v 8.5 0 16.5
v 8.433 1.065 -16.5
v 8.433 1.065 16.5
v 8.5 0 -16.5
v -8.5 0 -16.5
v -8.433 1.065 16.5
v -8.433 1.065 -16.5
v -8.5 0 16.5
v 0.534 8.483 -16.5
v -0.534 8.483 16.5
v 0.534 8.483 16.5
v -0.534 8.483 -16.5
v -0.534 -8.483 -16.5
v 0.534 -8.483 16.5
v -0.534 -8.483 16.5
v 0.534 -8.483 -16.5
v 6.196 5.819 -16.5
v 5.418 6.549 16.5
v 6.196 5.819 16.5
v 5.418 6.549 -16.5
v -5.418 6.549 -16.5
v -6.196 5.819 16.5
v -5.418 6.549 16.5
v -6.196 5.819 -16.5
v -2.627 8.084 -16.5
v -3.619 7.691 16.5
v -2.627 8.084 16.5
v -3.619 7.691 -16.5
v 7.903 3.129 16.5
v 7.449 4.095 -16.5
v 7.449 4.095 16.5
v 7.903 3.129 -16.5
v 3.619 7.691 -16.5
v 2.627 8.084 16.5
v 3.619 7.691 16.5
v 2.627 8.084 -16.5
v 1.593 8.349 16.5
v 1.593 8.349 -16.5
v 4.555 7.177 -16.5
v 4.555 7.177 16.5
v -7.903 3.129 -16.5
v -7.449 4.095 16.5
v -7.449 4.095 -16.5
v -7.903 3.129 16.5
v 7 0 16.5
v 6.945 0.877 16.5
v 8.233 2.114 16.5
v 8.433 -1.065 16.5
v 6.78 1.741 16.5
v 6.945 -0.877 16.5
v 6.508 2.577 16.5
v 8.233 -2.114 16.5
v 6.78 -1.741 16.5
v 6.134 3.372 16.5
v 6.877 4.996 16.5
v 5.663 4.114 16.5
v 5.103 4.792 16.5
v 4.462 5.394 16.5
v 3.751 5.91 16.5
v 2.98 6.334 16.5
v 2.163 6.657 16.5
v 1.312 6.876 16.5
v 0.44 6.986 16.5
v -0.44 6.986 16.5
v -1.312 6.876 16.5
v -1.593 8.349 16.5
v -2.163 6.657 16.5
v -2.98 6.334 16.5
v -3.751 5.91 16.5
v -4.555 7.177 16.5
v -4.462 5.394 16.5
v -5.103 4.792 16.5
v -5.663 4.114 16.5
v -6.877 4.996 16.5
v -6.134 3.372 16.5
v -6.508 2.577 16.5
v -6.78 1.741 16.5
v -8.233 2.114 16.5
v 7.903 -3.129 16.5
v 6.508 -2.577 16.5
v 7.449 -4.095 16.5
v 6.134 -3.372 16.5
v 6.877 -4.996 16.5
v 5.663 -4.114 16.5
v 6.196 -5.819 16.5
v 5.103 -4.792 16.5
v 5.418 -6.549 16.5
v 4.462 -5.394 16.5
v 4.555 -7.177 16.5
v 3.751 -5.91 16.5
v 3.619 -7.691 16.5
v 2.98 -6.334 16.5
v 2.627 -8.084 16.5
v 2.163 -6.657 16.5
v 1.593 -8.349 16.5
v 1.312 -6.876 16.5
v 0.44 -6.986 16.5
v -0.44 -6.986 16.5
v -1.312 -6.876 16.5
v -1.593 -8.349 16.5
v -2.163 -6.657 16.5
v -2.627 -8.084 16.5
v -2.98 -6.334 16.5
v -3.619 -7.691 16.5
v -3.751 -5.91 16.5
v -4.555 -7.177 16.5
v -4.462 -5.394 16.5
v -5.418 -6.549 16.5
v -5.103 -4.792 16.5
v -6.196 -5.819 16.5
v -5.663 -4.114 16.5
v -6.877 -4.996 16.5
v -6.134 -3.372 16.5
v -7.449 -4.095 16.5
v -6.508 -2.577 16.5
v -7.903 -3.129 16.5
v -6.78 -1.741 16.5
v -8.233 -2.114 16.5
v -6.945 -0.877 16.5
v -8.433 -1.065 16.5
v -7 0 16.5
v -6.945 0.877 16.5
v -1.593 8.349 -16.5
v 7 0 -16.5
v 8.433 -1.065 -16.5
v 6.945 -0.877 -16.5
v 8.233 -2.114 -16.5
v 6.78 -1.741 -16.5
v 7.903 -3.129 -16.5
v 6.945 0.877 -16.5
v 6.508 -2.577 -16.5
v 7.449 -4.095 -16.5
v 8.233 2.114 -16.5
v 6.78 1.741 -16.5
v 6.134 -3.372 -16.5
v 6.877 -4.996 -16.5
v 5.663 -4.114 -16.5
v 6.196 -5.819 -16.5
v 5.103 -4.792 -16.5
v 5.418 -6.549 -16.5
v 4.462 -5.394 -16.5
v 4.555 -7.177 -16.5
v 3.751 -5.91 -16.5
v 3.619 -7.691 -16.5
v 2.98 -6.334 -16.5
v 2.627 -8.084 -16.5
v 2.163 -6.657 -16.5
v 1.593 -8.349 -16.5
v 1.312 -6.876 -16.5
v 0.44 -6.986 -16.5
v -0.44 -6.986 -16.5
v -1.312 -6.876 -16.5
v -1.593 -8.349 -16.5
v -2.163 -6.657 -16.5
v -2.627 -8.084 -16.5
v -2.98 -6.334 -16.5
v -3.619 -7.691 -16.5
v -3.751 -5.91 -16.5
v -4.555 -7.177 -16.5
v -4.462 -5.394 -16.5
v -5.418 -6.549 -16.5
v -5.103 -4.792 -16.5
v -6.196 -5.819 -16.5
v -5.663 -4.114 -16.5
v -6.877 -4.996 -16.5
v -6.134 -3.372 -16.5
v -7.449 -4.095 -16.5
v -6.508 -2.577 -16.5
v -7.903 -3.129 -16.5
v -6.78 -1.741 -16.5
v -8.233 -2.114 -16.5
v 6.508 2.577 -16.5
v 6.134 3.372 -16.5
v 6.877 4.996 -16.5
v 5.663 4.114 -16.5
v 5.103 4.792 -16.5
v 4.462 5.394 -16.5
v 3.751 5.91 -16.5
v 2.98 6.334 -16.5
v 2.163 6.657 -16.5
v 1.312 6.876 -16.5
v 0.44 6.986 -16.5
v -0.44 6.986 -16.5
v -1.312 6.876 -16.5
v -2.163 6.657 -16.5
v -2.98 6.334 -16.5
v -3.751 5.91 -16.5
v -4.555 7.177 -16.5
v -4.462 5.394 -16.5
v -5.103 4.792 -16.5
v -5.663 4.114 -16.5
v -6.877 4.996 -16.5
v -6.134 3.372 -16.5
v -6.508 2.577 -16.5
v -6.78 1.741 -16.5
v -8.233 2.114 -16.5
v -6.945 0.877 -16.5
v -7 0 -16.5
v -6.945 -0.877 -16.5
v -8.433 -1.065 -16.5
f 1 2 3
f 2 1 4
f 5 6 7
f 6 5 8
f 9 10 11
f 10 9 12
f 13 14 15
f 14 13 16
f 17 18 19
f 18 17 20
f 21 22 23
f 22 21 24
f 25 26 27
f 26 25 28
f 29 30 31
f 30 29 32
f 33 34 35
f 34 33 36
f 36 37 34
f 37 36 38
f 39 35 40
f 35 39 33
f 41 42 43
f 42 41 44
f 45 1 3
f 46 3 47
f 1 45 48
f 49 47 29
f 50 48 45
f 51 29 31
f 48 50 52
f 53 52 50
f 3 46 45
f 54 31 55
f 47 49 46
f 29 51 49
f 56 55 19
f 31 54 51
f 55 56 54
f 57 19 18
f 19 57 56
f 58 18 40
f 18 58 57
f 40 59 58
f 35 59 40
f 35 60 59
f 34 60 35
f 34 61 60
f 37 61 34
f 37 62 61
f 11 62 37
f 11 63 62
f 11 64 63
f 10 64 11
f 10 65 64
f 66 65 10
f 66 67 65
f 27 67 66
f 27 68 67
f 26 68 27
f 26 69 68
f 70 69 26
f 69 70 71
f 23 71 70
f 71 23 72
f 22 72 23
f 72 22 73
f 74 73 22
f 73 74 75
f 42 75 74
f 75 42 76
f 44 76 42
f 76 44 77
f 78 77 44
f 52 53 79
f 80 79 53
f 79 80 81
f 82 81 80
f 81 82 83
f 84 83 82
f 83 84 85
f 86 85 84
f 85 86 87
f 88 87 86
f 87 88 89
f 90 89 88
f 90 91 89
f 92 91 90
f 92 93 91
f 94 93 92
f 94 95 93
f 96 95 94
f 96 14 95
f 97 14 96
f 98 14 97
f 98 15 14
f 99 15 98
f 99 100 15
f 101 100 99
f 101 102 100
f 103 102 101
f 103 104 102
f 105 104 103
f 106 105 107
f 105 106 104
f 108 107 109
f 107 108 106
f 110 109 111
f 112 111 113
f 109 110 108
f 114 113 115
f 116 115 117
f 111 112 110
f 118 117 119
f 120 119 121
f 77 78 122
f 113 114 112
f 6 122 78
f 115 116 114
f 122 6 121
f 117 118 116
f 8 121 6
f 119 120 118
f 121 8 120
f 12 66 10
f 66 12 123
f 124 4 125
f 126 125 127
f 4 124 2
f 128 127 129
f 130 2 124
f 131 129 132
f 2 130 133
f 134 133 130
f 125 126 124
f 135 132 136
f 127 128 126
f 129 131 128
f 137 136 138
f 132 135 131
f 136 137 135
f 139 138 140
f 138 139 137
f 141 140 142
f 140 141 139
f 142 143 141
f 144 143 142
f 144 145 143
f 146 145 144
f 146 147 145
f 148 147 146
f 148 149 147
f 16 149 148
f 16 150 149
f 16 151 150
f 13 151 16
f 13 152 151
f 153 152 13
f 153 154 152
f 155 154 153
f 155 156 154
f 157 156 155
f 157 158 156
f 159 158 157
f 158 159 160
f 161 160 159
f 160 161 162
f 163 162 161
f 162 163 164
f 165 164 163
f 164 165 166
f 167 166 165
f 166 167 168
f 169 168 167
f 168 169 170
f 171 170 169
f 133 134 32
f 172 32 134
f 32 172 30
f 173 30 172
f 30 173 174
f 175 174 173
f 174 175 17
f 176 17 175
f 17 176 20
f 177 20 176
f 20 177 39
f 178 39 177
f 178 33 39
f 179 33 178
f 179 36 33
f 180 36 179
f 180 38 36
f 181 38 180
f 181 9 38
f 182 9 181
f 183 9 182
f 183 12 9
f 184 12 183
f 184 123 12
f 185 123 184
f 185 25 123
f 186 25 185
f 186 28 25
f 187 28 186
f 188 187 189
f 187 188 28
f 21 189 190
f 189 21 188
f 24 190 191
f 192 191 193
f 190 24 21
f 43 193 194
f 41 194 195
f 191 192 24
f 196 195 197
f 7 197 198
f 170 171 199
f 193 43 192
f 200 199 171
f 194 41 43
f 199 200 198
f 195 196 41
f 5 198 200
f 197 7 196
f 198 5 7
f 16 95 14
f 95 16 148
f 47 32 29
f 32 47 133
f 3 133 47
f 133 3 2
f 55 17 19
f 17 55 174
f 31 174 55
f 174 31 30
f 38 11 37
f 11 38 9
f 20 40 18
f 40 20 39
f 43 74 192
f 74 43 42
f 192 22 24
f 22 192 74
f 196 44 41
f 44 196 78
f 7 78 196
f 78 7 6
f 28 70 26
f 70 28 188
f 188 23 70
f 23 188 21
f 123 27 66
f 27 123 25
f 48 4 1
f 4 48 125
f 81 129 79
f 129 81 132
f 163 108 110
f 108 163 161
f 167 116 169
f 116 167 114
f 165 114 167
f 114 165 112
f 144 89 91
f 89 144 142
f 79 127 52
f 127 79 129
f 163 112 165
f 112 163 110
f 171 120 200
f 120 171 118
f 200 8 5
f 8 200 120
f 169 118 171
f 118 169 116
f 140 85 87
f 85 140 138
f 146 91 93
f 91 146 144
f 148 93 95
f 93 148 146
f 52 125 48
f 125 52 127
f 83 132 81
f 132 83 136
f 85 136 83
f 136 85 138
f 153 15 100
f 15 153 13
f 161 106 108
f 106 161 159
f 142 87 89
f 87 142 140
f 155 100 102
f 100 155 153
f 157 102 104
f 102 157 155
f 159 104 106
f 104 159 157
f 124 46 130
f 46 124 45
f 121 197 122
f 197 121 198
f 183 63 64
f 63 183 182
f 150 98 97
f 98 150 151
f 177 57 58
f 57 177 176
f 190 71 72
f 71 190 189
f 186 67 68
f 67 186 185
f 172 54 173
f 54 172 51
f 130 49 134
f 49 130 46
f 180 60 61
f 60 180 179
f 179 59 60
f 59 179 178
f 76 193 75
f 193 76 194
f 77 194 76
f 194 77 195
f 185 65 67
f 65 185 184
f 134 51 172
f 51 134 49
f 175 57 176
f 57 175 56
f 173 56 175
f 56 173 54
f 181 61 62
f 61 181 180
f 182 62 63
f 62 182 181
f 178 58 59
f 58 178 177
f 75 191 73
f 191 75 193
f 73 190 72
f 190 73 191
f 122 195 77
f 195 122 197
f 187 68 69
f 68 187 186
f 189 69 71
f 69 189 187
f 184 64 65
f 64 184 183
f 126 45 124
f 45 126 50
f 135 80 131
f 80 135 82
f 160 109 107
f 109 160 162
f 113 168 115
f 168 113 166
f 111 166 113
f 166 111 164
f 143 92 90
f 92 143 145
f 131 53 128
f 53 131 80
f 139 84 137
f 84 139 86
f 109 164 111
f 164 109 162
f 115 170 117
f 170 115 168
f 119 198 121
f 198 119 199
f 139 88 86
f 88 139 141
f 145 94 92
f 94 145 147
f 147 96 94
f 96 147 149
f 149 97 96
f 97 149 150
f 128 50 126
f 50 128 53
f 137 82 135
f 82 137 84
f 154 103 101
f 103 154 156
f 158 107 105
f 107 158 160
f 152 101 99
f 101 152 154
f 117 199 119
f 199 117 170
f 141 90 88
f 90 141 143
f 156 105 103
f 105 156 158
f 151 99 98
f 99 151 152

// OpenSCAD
$fn = 50;


difference() {
	union() {
		translate(v = [0, 0, -16.5000000000]) {
			cylinder(h = 33, r = 8.5000000000);
		}
	}
	union() {
		translate(v = [0, 0, -100.0000000000]) {
			cylinder(h = 200, r = 7);
		}
	}
}
